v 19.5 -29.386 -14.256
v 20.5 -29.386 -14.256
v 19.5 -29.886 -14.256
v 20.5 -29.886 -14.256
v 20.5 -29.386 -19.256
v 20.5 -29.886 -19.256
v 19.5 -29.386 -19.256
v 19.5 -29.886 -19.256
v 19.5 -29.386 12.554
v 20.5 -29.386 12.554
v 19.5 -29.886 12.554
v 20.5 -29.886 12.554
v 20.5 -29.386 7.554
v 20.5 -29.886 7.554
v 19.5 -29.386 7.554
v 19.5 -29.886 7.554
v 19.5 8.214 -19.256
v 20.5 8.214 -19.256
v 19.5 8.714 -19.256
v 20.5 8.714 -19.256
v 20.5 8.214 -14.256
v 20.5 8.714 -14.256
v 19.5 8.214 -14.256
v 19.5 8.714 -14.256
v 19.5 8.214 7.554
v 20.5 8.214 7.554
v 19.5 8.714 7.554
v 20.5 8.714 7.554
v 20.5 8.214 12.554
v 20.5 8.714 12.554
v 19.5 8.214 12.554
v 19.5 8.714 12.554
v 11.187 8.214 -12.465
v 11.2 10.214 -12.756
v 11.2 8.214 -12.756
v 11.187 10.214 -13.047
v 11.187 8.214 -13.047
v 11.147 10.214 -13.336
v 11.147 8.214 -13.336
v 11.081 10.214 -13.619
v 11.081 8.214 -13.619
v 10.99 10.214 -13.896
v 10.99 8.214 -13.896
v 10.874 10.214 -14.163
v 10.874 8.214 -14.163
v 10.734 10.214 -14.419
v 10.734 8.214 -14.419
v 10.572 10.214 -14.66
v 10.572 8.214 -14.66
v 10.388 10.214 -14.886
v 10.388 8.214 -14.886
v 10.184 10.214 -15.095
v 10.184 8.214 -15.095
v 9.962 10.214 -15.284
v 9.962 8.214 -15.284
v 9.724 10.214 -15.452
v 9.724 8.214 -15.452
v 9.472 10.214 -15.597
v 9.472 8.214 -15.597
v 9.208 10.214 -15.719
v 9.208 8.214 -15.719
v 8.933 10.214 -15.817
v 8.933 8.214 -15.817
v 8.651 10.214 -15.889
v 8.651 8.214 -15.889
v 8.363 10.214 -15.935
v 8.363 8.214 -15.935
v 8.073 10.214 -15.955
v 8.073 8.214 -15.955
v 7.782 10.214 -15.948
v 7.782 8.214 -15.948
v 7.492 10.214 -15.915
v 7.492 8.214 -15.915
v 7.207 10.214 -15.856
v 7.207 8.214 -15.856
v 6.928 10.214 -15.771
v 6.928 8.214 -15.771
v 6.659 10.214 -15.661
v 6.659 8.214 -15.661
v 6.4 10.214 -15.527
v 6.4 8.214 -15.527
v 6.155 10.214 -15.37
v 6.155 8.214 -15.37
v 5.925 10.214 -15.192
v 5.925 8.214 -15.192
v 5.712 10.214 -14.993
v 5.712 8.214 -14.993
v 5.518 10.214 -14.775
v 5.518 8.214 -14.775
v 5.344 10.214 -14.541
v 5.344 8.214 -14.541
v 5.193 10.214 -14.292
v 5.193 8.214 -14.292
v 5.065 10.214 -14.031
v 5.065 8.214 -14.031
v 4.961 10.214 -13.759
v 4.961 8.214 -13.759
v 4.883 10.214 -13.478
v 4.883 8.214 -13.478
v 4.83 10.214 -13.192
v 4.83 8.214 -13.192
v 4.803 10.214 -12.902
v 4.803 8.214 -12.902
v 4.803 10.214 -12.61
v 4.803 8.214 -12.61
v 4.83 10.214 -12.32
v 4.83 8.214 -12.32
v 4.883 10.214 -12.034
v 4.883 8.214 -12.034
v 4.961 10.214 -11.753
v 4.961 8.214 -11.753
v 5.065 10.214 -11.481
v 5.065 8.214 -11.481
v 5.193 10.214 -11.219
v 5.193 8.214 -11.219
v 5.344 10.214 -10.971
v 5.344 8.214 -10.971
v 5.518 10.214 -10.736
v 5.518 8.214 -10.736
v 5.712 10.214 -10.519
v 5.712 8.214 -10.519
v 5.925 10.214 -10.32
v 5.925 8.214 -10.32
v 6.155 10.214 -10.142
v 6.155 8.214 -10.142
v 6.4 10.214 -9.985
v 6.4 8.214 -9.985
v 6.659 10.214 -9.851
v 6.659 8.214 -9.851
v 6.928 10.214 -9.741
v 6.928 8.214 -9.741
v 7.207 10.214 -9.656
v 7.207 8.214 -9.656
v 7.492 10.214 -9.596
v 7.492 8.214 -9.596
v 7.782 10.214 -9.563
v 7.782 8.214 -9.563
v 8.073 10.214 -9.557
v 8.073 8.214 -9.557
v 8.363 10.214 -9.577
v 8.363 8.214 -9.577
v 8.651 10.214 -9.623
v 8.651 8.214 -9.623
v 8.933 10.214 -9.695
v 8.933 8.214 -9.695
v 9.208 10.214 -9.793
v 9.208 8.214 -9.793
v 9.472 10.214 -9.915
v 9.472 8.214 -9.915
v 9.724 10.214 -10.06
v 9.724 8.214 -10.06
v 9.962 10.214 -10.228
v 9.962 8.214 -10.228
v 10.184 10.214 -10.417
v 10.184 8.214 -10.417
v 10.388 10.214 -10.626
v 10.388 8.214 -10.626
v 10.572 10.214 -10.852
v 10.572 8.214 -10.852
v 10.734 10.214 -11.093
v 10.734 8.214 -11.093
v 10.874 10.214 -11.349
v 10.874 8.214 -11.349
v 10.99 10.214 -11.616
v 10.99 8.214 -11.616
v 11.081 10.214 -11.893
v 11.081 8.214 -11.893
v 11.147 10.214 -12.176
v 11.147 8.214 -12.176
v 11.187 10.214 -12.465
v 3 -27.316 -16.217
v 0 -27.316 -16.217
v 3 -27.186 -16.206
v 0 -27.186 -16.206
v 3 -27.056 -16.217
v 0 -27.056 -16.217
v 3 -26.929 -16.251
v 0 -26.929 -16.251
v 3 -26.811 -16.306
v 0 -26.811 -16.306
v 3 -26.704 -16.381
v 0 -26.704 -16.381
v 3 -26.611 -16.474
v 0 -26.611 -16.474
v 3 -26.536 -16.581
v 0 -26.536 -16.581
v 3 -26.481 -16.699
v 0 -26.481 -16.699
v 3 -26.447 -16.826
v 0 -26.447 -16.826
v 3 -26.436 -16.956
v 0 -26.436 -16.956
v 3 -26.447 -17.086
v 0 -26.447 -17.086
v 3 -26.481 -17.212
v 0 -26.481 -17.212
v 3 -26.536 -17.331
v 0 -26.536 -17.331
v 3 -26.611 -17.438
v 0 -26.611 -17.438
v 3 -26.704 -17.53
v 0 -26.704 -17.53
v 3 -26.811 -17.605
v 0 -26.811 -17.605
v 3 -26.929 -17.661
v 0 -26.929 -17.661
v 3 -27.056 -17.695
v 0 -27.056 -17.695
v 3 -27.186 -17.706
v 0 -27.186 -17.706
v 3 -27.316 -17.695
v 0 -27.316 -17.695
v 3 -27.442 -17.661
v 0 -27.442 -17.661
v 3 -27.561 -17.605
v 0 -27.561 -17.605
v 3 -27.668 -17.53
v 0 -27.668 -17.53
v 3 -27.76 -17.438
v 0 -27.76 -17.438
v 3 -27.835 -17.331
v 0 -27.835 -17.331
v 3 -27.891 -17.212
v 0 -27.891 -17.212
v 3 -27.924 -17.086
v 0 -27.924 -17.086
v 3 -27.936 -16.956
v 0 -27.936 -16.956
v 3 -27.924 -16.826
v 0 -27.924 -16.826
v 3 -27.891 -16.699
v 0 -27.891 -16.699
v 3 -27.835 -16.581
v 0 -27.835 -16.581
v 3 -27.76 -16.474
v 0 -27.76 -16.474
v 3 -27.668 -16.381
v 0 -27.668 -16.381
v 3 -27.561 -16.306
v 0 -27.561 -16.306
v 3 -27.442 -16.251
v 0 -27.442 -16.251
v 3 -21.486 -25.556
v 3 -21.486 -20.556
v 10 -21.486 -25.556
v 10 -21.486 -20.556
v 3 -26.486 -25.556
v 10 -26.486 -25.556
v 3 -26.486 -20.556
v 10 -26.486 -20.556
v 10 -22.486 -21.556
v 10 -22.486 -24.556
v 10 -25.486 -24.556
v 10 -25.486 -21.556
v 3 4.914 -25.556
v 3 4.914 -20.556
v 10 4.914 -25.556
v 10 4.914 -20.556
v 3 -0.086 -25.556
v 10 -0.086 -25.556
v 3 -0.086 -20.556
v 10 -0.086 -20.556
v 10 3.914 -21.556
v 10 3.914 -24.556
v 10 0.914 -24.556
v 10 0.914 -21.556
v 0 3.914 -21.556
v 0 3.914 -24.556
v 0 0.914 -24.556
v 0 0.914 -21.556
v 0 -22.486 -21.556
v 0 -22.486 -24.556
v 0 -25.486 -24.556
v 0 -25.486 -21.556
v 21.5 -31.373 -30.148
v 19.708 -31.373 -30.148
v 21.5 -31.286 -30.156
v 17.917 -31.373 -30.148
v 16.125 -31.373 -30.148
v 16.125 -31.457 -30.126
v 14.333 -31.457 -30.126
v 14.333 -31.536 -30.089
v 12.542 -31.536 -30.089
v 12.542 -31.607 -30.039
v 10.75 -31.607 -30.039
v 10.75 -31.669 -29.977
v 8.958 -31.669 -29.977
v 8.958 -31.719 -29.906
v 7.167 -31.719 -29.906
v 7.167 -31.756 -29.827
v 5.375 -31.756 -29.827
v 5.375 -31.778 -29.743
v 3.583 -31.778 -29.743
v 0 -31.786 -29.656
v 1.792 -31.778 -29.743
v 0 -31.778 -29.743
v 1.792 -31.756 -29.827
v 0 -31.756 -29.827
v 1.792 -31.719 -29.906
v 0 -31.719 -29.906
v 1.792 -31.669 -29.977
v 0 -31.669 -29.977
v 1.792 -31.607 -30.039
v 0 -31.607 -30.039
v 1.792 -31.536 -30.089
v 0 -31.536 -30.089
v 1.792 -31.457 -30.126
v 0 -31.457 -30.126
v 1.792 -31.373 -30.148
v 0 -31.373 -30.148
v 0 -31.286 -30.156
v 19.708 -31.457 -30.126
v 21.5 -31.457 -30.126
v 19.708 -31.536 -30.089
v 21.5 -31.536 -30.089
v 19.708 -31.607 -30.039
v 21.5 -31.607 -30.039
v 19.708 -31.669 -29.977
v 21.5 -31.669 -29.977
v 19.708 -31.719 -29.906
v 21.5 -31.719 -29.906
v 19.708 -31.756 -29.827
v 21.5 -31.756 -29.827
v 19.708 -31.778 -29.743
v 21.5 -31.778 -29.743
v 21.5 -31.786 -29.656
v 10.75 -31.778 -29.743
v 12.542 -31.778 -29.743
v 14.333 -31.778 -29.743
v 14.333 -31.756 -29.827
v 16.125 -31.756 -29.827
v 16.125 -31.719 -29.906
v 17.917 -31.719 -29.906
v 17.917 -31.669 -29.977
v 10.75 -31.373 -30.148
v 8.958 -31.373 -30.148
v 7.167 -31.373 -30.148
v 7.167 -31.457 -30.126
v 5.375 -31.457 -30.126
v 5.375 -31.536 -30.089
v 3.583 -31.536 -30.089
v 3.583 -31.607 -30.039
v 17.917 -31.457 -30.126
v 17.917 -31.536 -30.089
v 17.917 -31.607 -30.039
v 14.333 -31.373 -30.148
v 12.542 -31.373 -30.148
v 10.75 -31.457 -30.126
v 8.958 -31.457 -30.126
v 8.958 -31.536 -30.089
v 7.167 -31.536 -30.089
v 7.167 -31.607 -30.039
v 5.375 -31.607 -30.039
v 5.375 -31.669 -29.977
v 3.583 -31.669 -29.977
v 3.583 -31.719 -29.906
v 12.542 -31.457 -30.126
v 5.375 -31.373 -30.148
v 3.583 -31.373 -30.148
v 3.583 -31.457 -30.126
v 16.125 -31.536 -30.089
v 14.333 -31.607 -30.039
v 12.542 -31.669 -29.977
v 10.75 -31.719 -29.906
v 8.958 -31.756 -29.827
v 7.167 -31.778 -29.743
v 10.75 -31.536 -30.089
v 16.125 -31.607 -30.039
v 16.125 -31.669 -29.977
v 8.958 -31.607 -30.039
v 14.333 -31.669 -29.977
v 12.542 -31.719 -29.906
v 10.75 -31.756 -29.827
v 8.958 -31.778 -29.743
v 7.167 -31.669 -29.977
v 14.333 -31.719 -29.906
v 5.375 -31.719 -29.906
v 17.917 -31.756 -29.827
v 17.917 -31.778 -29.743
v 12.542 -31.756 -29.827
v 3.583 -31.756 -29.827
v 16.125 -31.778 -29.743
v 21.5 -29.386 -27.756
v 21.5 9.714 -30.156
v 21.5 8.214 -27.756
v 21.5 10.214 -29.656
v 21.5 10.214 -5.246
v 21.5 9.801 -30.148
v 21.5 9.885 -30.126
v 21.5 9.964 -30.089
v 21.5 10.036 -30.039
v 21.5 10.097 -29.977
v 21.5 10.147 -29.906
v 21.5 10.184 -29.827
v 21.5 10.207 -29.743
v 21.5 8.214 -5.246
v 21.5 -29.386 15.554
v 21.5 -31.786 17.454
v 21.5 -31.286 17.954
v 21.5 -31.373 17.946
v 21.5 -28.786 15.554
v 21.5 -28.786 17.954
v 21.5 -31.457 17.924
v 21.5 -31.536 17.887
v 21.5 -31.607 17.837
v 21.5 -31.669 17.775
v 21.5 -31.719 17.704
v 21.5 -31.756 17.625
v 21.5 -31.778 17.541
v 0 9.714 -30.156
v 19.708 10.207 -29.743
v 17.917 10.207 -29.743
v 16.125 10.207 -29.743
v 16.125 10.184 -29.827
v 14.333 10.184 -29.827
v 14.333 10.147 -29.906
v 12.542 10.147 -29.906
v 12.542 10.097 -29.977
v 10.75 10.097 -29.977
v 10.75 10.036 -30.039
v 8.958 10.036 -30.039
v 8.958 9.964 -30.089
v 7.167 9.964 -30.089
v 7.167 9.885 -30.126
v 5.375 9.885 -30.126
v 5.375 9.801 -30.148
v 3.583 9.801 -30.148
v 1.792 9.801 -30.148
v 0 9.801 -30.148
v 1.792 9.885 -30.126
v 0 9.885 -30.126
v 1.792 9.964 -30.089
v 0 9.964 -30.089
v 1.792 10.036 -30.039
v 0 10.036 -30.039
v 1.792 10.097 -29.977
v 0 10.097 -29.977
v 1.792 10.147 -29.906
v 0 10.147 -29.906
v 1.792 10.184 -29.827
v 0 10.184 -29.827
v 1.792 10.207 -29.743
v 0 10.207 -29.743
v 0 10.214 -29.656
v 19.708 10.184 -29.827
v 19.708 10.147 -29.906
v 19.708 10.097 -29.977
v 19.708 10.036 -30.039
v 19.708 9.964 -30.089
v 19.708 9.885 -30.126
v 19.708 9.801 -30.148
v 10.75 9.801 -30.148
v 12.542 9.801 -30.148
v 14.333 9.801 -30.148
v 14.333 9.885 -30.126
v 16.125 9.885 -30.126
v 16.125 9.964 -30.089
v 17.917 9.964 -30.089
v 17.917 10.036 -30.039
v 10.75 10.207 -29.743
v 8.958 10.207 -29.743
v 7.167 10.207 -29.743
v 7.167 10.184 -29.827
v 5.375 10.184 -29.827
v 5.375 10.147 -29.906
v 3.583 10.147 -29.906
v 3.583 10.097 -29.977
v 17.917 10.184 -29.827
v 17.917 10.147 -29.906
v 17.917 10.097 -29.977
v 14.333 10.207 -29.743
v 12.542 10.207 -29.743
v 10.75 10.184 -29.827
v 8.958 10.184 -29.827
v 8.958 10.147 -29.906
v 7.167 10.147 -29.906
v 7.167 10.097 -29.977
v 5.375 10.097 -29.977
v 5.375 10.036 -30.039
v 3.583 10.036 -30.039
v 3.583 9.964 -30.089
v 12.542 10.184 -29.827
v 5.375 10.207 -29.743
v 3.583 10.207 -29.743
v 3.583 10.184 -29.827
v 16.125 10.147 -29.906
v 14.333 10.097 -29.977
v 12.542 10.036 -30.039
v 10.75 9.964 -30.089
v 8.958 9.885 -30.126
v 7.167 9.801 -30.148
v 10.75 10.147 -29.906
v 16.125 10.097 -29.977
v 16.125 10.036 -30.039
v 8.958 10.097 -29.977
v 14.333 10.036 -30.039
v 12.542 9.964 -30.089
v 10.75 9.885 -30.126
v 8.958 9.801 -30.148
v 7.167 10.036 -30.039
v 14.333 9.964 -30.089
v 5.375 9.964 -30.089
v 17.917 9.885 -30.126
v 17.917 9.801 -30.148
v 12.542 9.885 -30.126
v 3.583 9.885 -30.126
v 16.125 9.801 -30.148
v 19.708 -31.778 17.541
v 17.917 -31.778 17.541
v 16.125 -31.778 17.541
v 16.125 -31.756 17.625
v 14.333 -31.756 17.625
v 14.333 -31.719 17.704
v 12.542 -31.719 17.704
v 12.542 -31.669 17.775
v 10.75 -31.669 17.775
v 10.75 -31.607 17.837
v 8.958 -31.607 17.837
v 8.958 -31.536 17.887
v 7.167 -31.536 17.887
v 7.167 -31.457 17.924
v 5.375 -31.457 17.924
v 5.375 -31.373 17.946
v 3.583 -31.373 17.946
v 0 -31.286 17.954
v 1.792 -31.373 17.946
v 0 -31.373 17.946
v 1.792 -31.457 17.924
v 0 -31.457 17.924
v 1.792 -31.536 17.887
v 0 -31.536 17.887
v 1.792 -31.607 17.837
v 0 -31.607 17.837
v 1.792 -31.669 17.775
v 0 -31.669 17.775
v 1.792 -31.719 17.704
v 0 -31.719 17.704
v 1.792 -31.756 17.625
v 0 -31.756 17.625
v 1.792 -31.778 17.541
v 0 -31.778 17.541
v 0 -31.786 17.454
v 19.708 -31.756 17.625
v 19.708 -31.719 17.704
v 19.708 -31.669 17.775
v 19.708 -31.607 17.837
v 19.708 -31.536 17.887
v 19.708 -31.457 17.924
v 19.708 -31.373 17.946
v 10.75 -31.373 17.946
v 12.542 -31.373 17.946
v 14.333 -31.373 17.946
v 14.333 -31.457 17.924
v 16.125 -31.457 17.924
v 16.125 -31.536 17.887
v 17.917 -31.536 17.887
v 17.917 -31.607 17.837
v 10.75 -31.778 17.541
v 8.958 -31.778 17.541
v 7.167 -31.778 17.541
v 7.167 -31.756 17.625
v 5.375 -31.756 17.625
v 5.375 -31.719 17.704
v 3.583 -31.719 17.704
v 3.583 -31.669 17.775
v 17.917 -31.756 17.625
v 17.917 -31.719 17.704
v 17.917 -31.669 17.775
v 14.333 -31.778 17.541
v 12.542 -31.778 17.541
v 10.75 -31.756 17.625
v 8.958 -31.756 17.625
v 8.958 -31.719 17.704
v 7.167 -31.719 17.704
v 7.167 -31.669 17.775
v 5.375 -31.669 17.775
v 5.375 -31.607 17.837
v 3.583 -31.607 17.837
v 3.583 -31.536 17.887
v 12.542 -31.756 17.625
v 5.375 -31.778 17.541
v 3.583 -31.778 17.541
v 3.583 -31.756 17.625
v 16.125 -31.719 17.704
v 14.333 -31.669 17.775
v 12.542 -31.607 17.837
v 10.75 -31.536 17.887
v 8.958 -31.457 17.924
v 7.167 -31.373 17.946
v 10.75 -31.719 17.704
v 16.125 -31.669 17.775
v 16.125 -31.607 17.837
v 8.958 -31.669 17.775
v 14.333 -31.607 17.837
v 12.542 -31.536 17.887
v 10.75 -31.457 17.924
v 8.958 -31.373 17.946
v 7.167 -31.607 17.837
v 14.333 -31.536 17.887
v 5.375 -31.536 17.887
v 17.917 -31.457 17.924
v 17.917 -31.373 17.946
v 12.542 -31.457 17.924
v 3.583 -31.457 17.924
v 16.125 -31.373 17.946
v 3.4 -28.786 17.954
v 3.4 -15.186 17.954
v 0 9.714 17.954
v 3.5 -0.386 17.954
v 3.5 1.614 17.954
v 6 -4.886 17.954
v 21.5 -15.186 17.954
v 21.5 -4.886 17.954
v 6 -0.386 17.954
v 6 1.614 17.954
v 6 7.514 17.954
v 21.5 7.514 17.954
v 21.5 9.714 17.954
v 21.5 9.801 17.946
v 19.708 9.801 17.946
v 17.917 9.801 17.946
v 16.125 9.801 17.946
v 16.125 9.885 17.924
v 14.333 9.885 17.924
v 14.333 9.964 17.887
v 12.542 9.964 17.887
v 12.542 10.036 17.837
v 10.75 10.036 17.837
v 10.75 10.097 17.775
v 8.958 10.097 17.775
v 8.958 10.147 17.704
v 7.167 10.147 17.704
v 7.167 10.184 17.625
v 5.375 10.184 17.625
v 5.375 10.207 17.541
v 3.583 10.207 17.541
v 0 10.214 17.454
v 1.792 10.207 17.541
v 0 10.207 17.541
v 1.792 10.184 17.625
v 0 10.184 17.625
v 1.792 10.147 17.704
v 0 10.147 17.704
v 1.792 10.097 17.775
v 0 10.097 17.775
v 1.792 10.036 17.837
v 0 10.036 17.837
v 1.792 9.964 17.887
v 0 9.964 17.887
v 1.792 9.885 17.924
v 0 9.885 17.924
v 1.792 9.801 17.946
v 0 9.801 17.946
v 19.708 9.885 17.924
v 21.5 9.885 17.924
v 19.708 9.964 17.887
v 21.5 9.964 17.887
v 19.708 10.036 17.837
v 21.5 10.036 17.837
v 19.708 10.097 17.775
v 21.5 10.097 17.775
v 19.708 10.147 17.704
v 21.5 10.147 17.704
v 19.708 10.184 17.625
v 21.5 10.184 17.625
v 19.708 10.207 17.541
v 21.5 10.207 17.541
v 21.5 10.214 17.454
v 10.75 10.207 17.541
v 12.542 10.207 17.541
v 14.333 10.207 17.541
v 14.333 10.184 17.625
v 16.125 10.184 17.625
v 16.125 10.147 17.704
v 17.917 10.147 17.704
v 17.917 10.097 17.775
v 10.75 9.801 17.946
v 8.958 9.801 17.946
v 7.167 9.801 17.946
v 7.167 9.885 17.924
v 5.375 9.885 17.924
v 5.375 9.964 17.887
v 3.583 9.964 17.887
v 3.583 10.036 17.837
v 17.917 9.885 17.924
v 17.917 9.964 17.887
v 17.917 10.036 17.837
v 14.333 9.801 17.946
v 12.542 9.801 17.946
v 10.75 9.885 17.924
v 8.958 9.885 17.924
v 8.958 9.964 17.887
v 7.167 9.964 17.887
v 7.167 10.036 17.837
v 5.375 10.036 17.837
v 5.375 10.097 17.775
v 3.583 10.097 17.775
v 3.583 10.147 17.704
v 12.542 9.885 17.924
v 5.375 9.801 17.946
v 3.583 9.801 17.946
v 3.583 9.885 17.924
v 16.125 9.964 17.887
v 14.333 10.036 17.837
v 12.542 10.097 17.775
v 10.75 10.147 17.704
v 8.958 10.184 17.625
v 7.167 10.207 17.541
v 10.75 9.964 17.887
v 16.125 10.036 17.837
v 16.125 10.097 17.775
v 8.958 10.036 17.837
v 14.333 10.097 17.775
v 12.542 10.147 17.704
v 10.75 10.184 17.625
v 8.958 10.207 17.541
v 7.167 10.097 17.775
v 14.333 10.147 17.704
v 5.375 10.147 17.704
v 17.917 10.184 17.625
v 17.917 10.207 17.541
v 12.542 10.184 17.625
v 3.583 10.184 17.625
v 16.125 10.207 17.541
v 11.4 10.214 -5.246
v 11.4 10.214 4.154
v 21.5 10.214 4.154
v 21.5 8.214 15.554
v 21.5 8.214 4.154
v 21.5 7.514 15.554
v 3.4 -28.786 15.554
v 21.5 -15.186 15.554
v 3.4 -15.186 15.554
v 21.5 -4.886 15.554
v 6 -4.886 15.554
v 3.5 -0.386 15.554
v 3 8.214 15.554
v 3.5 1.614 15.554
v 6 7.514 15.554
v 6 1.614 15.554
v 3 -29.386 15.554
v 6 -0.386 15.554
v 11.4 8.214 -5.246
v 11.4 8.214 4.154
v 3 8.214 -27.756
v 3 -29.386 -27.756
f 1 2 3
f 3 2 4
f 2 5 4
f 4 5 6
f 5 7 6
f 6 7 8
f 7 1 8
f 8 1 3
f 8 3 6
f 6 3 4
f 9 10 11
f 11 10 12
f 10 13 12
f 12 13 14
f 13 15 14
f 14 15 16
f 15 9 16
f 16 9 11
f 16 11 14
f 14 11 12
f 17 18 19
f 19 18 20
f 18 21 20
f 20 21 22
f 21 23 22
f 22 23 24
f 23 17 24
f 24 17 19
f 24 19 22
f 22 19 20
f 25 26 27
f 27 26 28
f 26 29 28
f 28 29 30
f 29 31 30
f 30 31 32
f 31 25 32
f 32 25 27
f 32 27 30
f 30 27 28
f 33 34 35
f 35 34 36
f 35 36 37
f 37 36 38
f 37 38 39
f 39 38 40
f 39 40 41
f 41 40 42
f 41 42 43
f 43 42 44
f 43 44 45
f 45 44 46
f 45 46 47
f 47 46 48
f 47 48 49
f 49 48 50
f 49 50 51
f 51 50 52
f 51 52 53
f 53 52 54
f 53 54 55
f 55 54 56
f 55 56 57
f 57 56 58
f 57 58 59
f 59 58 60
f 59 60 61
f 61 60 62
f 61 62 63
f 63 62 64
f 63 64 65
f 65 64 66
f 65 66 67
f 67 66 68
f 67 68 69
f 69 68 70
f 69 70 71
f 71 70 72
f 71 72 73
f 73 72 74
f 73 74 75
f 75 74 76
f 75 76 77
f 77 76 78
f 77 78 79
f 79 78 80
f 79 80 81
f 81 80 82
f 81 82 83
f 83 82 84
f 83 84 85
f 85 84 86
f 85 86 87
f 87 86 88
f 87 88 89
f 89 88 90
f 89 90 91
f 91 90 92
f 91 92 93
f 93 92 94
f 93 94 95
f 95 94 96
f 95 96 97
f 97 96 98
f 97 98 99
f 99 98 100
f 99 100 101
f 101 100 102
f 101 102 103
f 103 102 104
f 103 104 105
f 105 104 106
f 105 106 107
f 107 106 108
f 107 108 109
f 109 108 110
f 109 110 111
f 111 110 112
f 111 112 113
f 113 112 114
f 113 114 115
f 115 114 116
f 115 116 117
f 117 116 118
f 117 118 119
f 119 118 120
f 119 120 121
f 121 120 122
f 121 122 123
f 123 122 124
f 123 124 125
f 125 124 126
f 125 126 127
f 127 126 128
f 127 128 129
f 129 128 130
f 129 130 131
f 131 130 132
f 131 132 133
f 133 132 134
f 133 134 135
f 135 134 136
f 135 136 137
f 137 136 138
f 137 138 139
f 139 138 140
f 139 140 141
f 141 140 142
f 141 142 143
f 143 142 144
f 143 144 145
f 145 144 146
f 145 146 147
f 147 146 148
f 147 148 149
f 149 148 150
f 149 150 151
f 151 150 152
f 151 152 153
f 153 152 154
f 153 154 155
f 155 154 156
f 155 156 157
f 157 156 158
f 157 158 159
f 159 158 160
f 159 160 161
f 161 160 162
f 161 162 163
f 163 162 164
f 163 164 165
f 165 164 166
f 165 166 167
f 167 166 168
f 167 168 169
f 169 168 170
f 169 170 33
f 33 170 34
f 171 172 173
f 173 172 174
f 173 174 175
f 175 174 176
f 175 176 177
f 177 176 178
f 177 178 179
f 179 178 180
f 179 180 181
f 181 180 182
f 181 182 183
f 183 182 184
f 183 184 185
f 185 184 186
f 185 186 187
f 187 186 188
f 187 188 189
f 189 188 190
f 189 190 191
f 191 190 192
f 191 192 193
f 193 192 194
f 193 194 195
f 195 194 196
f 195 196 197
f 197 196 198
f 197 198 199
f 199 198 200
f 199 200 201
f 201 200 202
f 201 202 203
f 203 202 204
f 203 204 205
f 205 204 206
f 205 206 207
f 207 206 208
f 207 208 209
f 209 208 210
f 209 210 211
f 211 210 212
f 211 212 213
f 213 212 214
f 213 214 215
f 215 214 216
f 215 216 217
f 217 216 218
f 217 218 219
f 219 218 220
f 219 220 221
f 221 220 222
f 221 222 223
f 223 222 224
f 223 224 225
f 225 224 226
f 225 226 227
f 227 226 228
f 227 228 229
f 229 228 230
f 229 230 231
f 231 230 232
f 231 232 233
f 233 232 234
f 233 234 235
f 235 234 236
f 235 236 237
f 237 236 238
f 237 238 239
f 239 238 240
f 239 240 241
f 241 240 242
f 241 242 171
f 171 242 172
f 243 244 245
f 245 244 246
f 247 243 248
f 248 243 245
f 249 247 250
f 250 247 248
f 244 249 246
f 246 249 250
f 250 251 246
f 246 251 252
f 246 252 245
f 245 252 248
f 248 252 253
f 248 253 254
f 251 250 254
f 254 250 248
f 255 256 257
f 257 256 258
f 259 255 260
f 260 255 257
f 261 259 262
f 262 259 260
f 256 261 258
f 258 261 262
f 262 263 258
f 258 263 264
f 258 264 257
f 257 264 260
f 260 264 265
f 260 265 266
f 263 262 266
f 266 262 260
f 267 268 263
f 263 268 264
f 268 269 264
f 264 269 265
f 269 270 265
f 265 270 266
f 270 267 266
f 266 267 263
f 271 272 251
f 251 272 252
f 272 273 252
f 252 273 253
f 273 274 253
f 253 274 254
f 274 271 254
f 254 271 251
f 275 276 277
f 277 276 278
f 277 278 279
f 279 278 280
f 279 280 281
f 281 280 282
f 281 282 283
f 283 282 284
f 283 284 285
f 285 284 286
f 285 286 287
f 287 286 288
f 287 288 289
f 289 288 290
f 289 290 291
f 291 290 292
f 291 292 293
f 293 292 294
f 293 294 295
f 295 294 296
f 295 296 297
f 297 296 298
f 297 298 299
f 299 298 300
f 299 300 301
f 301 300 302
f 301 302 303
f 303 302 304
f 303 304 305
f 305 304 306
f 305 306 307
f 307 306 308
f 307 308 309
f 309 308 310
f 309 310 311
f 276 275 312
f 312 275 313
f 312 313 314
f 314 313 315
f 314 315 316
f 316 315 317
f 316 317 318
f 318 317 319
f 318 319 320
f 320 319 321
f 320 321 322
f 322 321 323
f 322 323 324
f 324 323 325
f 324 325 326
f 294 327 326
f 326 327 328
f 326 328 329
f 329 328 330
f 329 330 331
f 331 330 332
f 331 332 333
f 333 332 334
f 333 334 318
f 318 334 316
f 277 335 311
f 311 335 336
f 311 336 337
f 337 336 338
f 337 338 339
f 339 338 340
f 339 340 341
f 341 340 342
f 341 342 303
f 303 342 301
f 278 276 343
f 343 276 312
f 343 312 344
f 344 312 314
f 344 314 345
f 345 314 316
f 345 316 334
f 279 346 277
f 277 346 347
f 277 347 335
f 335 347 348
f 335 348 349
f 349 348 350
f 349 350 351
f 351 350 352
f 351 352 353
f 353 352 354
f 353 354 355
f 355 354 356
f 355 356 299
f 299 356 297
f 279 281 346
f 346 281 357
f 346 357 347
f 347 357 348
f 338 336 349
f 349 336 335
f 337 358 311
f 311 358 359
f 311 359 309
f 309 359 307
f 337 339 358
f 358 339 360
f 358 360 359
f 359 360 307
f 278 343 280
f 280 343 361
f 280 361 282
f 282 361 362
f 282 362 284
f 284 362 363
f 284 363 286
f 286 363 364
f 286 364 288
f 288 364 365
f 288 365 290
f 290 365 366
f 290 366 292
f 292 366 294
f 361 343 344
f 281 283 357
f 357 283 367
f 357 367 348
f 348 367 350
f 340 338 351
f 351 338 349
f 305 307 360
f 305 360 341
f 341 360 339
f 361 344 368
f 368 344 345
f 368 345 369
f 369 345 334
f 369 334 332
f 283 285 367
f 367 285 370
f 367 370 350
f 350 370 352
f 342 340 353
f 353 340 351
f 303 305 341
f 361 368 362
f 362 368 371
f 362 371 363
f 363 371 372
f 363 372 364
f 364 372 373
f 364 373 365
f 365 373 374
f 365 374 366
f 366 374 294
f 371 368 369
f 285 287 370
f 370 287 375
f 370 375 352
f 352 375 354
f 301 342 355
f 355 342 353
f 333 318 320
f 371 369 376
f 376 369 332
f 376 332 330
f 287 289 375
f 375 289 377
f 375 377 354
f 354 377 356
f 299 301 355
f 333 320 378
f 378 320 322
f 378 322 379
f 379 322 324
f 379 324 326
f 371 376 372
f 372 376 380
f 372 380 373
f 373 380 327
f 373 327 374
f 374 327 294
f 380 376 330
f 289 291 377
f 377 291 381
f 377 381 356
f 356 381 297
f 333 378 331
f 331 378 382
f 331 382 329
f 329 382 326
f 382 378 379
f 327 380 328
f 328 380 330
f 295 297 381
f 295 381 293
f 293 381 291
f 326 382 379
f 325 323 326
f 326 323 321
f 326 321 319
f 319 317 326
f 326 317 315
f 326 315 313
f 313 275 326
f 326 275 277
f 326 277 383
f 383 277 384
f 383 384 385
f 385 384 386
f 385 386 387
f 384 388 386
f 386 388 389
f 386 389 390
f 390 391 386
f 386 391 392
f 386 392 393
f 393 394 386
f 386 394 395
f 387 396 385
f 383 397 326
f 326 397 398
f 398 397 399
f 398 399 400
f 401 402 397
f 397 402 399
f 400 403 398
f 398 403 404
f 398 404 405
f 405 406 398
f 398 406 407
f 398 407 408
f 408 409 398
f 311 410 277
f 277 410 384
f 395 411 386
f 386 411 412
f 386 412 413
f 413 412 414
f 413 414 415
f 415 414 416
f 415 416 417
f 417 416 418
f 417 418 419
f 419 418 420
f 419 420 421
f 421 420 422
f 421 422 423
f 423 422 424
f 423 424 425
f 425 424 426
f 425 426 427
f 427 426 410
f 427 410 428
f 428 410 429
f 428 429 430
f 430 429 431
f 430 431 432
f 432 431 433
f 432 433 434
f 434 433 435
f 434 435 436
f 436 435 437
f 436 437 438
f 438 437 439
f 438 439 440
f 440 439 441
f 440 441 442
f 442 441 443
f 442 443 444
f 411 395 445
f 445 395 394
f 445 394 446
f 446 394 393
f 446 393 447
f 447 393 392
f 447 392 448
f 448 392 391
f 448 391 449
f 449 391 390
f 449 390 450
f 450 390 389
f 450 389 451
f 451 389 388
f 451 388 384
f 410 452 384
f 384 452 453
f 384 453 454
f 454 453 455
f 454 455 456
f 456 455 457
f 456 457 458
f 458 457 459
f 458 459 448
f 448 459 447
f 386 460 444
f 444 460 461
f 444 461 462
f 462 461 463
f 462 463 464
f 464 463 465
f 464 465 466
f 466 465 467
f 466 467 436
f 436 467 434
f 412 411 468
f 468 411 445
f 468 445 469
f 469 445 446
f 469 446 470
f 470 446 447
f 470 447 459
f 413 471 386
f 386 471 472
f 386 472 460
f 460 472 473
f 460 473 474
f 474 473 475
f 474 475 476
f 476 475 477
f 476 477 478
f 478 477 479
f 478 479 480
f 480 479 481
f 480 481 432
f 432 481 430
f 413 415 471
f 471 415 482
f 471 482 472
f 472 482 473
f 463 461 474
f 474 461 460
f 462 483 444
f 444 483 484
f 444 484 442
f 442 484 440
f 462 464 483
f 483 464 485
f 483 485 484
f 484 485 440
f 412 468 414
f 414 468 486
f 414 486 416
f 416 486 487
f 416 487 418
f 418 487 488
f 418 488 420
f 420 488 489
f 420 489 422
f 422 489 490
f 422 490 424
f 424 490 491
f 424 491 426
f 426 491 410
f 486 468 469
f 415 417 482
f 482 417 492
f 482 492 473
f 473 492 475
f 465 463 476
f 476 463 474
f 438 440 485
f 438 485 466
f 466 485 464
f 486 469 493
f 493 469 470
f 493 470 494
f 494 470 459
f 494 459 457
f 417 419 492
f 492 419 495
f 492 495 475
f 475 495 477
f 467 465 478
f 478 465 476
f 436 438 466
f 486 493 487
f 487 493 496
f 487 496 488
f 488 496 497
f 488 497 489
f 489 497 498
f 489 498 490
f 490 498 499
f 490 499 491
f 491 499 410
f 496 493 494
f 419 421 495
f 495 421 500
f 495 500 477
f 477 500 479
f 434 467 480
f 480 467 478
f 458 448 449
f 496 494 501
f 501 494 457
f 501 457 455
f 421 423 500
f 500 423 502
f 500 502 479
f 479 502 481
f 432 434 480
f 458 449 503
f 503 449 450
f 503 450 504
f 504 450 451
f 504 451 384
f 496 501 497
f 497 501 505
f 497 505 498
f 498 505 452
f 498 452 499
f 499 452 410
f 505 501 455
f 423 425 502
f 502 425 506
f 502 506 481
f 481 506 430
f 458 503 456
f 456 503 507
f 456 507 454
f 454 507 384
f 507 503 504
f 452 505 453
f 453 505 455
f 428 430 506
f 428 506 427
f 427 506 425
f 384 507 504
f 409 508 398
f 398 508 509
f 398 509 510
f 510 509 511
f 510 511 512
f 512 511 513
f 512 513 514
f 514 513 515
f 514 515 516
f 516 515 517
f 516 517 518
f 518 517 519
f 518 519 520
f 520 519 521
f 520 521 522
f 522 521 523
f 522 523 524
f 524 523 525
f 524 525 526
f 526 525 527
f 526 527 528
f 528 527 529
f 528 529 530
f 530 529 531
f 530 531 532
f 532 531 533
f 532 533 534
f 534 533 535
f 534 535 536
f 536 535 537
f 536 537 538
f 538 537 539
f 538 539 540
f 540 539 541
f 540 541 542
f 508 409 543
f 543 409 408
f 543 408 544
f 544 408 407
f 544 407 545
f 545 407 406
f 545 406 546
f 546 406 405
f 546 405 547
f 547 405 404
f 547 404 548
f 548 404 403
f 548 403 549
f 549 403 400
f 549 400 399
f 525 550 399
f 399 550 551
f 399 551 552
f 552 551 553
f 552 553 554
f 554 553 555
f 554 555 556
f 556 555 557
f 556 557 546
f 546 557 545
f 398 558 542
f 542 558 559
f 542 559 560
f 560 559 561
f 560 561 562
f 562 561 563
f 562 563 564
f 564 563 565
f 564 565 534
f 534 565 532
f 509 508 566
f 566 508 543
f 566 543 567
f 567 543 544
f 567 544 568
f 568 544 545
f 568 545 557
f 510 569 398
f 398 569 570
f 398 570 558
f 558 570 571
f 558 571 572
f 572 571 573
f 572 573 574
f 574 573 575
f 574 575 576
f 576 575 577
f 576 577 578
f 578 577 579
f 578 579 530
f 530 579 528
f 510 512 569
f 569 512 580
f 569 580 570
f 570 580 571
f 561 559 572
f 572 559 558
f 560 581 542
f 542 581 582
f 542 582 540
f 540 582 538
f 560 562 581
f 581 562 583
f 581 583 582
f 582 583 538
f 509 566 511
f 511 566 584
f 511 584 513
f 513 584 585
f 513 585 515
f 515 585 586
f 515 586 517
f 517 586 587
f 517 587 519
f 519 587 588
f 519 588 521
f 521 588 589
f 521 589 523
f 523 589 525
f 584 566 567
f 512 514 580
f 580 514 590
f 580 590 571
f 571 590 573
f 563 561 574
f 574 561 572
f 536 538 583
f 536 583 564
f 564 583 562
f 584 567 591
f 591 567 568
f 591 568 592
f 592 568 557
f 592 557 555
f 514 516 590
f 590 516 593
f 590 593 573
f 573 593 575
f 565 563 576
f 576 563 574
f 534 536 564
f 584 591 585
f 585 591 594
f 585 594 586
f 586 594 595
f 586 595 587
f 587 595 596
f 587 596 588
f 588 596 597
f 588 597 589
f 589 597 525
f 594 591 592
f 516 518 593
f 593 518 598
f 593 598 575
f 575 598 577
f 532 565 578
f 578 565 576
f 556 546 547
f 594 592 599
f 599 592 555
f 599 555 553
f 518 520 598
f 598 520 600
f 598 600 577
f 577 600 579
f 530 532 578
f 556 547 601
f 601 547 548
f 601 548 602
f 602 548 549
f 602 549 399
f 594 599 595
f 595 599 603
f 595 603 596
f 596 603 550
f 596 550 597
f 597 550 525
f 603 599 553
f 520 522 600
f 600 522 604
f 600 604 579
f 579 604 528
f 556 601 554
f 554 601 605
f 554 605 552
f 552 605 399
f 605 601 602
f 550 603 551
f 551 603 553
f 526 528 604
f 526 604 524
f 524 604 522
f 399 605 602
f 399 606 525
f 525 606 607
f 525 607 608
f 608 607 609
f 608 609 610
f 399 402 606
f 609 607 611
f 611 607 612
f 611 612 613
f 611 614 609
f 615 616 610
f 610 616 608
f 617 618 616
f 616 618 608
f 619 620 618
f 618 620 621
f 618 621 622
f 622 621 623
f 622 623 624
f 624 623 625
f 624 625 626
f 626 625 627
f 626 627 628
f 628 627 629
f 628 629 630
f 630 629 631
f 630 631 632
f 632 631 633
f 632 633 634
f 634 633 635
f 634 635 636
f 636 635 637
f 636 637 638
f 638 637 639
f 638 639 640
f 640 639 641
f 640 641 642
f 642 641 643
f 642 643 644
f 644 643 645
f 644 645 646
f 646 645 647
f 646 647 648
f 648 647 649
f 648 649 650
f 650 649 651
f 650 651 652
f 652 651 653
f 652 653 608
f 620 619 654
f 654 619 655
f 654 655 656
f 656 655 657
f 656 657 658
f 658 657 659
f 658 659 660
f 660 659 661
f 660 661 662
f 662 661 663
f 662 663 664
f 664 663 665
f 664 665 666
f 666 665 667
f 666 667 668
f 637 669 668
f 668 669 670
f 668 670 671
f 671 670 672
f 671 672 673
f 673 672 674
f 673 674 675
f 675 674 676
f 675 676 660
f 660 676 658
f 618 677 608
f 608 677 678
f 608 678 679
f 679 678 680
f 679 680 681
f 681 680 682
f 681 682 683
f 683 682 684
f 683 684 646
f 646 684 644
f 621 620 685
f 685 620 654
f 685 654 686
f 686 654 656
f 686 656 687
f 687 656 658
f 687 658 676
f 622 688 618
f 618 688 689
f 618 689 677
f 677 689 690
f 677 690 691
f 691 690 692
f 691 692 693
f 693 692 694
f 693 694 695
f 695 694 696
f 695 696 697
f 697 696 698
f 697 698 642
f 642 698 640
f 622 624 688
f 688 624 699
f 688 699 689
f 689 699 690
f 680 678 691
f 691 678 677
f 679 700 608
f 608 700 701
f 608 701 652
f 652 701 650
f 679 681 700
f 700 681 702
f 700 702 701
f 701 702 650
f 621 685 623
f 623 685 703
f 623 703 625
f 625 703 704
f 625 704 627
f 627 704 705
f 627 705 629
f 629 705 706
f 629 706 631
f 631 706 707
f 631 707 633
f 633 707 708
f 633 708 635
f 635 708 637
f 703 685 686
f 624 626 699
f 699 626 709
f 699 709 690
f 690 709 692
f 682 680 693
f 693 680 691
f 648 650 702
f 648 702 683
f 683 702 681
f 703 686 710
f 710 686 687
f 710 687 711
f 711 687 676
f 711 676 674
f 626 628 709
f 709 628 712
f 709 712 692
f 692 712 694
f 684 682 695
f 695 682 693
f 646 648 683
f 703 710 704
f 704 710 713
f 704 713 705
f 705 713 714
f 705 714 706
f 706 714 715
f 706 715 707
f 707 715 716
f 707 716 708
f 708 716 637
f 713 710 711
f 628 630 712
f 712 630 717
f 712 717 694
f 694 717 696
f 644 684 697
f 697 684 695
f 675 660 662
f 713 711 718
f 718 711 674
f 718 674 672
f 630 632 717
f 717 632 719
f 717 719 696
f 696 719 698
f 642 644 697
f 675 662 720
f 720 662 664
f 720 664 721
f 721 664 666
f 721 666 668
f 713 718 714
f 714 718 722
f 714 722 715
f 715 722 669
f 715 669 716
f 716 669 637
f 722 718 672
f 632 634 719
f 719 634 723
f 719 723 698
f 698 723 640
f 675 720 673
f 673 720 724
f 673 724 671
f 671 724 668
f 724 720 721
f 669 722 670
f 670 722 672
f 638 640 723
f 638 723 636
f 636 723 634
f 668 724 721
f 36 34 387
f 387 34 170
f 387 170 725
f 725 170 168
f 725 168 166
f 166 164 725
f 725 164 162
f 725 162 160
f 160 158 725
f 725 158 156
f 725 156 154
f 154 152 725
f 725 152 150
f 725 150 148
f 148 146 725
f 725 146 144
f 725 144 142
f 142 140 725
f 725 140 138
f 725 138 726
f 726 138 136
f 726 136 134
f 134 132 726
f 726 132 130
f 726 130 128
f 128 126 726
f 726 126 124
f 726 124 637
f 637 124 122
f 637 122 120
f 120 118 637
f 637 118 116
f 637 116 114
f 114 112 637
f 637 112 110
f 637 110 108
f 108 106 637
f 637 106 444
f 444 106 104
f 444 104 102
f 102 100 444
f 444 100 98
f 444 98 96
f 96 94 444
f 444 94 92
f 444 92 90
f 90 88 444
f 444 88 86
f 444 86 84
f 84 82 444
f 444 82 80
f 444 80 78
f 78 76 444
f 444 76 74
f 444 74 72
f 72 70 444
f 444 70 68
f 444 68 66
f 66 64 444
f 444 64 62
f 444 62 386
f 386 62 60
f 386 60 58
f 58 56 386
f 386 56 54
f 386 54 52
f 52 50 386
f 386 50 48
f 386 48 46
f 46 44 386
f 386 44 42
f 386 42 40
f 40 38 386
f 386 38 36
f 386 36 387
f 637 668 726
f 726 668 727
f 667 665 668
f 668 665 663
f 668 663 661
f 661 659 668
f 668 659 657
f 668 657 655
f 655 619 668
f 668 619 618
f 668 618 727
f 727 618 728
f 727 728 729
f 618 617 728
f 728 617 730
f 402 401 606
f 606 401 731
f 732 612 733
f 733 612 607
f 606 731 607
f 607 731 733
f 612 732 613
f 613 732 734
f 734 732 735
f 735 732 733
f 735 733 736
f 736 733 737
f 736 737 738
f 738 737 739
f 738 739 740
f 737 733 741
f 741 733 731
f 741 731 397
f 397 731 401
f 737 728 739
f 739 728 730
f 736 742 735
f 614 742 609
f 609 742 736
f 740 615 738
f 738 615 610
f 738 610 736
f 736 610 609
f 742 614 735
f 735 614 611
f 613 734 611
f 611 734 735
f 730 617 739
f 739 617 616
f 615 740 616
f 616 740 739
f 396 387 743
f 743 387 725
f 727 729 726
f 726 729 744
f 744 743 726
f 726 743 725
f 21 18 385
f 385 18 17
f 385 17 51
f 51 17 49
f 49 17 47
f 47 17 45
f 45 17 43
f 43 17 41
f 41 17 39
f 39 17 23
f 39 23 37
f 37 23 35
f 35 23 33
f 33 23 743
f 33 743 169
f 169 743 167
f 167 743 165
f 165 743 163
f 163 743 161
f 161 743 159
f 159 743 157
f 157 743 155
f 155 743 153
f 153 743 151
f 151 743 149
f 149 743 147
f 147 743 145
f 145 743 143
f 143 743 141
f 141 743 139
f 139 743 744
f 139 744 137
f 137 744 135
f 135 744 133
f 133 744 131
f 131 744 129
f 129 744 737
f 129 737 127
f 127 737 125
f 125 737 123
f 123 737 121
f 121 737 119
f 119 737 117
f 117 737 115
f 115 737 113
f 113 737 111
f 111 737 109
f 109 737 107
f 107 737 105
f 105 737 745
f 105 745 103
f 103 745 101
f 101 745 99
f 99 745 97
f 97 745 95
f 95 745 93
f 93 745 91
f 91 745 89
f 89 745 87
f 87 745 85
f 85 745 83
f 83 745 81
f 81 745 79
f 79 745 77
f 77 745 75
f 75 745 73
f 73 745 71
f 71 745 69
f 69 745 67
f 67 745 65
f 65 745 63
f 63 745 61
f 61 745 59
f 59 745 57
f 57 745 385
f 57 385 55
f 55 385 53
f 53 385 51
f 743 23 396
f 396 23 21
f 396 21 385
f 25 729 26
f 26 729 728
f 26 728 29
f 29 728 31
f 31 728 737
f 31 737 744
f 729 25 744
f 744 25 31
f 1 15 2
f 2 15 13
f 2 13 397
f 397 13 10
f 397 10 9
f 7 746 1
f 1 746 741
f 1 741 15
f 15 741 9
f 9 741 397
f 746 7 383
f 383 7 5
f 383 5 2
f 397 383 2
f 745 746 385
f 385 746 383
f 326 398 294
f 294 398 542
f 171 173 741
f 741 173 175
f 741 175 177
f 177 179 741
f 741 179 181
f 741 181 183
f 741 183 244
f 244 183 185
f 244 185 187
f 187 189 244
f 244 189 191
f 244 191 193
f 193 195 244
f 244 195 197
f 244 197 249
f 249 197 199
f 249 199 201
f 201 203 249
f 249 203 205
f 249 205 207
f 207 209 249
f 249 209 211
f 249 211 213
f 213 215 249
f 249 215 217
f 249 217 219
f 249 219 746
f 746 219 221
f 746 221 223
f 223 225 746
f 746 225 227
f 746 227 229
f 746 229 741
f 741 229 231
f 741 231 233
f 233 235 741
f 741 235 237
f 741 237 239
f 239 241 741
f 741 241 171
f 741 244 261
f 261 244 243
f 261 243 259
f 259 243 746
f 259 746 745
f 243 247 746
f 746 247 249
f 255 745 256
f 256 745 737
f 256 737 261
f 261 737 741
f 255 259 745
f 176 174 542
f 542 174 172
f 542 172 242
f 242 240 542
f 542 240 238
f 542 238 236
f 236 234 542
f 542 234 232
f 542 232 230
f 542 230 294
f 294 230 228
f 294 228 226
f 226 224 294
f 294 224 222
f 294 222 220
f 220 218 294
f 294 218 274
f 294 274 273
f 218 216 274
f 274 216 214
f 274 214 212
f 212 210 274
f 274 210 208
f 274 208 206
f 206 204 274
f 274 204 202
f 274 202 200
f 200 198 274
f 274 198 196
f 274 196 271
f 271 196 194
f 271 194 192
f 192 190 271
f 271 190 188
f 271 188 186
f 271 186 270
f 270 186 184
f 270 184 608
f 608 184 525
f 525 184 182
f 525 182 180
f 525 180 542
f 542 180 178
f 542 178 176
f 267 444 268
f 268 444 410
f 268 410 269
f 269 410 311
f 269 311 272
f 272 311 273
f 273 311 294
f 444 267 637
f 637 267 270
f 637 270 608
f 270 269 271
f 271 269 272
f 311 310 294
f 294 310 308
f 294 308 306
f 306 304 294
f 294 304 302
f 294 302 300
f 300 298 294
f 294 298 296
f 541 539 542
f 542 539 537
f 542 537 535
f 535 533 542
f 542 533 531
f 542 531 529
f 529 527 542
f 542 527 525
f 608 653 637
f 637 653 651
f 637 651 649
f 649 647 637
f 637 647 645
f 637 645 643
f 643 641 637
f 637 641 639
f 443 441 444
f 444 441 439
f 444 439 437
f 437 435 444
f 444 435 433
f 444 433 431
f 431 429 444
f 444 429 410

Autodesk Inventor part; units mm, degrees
ref_plane "YZ Plane" through (0, 0, 0) normal (1, 0, 0) x (0, 1, 0)
ref_plane "XZ Plane" through (0, 0, 0) normal (0, 1, 0) x (-1, 0, 0)
ref_plane "XY Plane" through (0, 0, 0) normal (0, 0, 1) x (1, 0, 0)
sketch "Sketch1" plane through (0, 0, 0) normal (1, 0, 0) x (0, 1, 0)
  line L0 (10.2141, 17.9541) -> (-31.7859, 17.9541)
  line L1 (-31.7859, 17.9541) -> (-31.7859, -30.1559)
  line L2 (-31.7859, -30.1559) -> (10.2141, -30.1559)
  line L3 (10.2141, -30.1559) -> (10.2141, 17.9541)
  point P0 (0, 0)
  dimension "d0" = 42
  dimension "d1" = 48.11
extrude "BasePlate" add sketch "Sketch1" along normal blind 3
sketch "Sketch2" plane through (3, 0, 0) normal (1, 0, 0) x (0, 0, -1)
  point P0 (0, 0)
sketch "Sketch3" plane through (3, 0, 0) normal (1, 0, 0) x (0, 0, -1)
  line L0 (30.1559, 10.2141) -> (-17.9541, 10.2141) projected
  line L1 (-17.9541, -31.7859) -> (30.1559, -31.7859) projected
  line L2 (-17.9541, 10.2141) -> (30.1559, 10.2141)
  line L3 (30.1559, 10.2141) -> (30.1559, -31.7859)
  line L4 (30.1559, -31.7859) -> (-17.9541, -31.7859)
  line L5 (-17.9541, -31.7859) -> (-17.9541, 10.2141)
  line L6 (-15.5541, 8.2141) -> (27.7559, 8.2141)
  line L7 (27.7559, 8.2141) -> (27.7559, -29.3859)
  line L8 (27.7559, -29.3859) -> (-15.5541, -29.3859)
  line L9 (-15.5541, -29.3859) -> (-15.5541, 8.2141)
  point P0 (0, 0)
  point P1 (-17.9541, -10.7859)
  dimension "d4" = 2
  dimension "d5" = 2.4
  dimension "d6" = 2.4
  dimension "d7" = 2.4
extrude "Walls" add sketch "Sketch3" along normal blind 18.5
sketch "Sketch4" plane through (21.5, 0, 0) normal (1, 0, 0) x (0, 0, -1)
  line L0 (30.1559, 10.2141) -> (-17.9541, 10.2141) projected
  line L1 (-15.5541, 8.2141) -> (27.7559, 8.2141) projected
  line L2 (-4.1541, 10.2141) -> (5.2459, 10.2141)
  line L3 (5.2459, 10.2141) -> (5.2459, 8.2141)
  line L4 (5.2459, 8.2141) -> (-4.1541, 8.2141)
  line L5 (-4.1541, 8.2141) -> (-4.1541, 10.2141)
  line L6 (-17.9541, 10.2141) -> (-17.9541, -31.7859) projected
  point P0 (0, 0)
  point P1 (-4.1541, 9.2141)
  point P2 (5.2459, 10.2141)
  dimension "d10" = 9.4
  dimension "d11" = 13.8
extrude "USB-C" cut sketch "Sketch4" against normal blind 10.1
sketch "Sketch5" plane through (21.5, 0, 0) normal (1, 0, 0) x (0, 0, -1)
  line L0 (-17.9541, 10.2141) -> (-17.9541, -31.7859) projected
  line L1 (-15.5541, -29.3859) -> (-15.5541, 8.2141) projected
  line L2 (-17.9541, -4.8859) -> (-15.5541, -4.8859)
  line L3 (-15.5541, -4.8859) -> (-15.5541, 7.5141)
  line L4 (-15.5541, 7.5141) -> (-17.9541, 7.5141)
  line L5 (-17.9541, 7.5141) -> (-17.9541, -4.8859)
  line L6 (-4.1541, 10.2141) -> (-17.9541, 10.2141) projected
  point P0 (0, 0)
  point P1 (-16.7541, 7.5141)
  point P2 (-17.9541, 7.5141)
  point P3 (-15.5541, -4.8859)
  dimension "d14" = 12.4
  dimension "d15" = 2.7
extrude "PowerConnector1" cut sketch "Sketch5" against normal blind 15.5
sketch "Sketch6" plane through (6, 0, 0) normal (1, 0, 0) x (0, 0, -1)
  line L0 (-17.9541, 10.2141) -> (-17.9541, -31.7859) projected
  line L1 (-17.9541, -0.3859) -> (-15.5541, -0.3859)
  line L2 (-15.5541, -0.3859) -> (-15.5541, 1.6141)
  line L3 (-15.5541, 1.6141) -> (-17.9541, 1.6141)
  line L4 (-17.9541, 1.6141) -> (-17.9541, -0.3859)
  line L5 (-17.9541, 7.5141) -> (-15.5541, 7.5141) projected
  point P0 (0, 0)
  dimension "d18" = 2.4
  dimension "d19" = 2
  dimension "d20" = 5.9
extrude "PowerConnector2" cut sketch "Sketch6" against normal blind 2.5
sketch "Sketch8" plane through (21.5, 0, 0) normal (1, 0, 0) x (0, 0, -1)
  line L0 (-17.9541, 10.2141) -> (-17.9541, -31.7859) projected
  line L1 (-15.5541, 8.2141) -> (-15.5541, -29.3859) projected
  line L2 (-17.9541, -28.7859) -> (-15.5541, -28.7859)
  line L3 (-15.5541, -28.7859) -> (-15.5541, -15.1859)
  line L4 (-15.5541, -15.1859) -> (-17.9541, -15.1859)
  line L5 (-17.9541, -15.1859) -> (-17.9541, -28.7859)
  line L6 (-17.9541, -31.7859) -> (30.1559, -31.7859) projected
  point P0 (0, 0)
  dimension "d23" = 13.6
  dimension "d24" = 3
extrude "RJ-12" cut sketch "Sketch8" against normal blind 18.1
fillet "Fillet1" radius 0.5 4 edges at (10.75, 10.2141, 17.9541) (10.75, -31.7859, 17.9541) (10.75, 10.2141, -30.1559) (10.75, -31.7859, -30.1559)
sketch "Sketch9" plane through (0, 0, 0) normal (-1, 0, 0) x (0, 0, 1)
  line L0 (-24.5559, -25.4859) -> (-21.5559, -25.4859)
  line L1 (-21.5559, -25.4859) -> (-21.5559, -22.4859)
  line L2 (-21.5559, -22.4859) -> (-24.5559, -22.4859)
  line L3 (-24.5559, -22.4859) -> (-24.5559, -25.4859)
  line L4 (-30.1559, -31.2859) -> (-30.1559, 9.7141) projected
  line L5 (17.4541, -31.7859) -> (-29.6559, -31.7859) projected
  point P0 (0, 0)
  point P1 (-24.5559, -23.9859)
  dimension "d28" = 3
  dimension "d29" = 3
  dimension "d30" = 5.6
  dimension "d31" = 6.3
extrude "ZBButton" cut sketch "Sketch9" against normal blind 3
sketch "Sketch10" plane through (0, 0, 0) normal (-1, 0, 0) x (0, 0, 1)
  line L0 (-24.5559, 0.9141) -> (-21.5559, 0.9141)
  line L1 (-21.5559, 0.9141) -> (-21.5559, 3.9141)
  line L2 (-21.5559, 3.9141) -> (-24.5559, 3.9141)
  line L3 (-24.5559, 3.9141) -> (-24.5559, 0.9141)
  line L4 (-30.1559, -31.2859) -> (-30.1559, 9.7141) projected
  line L5 (-29.6559, 10.2141) -> (17.4541, 10.2141) projected
  point P0 (0, 0)
  point P1 (-24.5559, 2.4141)
  dimension "d34" = 3
  dimension "d35" = 3
  dimension "d36" = 5.6
  dimension "d37" = 6.3
extrude "ResetButton" cut sketch "Sketch10" against normal blind 3
sketch "Sketch11" plane through (3, 0, 0) normal (1, 0, 0) x (0, 0, -1)
  line L0 (25.5559, 4.9141) -> (20.5559, 4.9141)
  line L1 (20.5559, 4.9141) -> (20.5559, -0.0859)
  line L2 (20.5559, -0.0859) -> (25.5559, -0.0859)
  line L3 (25.5559, -0.0859) -> (25.5559, 4.9141)
  line L4 (21.5559, 3.9141) -> (24.5559, 3.9141) projected
  line L5 (24.5559, 3.9141) -> (24.5559, 0.9141) projected
  line L6 (25.5559, -21.4859) -> (20.5559, -21.4859)
  line L7 (20.5559, -21.4859) -> (20.5559, -26.4859)
  line L8 (20.5559, -26.4859) -> (25.5559, -26.4859)
  line L9 (25.5559, -26.4859) -> (25.5559, -21.4859)
  line L10 (24.5559, -22.4859) -> (24.5559, -25.4859) projected
  line L11 (21.5559, -22.4859) -> (24.5559, -22.4859) projected
  line L12 (24.5559, 0.9141) -> (21.5559, 0.9141) projected
  line L13 (24.5559, 3.9141) -> (21.5559, 3.9141)
  line L14 (21.5559, 3.9141) -> (21.5559, 0.9141)
  line L15 (21.5559, 0.9141) -> (24.5559, 0.9141)
  line L16 (24.5559, 0.9141) -> (24.5559, 3.9141)
  line L17 (21.5559, -25.4859) -> (21.5559, -22.4859) projected
  line L18 (24.5559, -22.4859) -> (21.5559, -22.4859)
  line L19 (21.5559, -22.4859) -> (21.5559, -25.4859)
  line L20 (21.5559, -25.4859) -> (24.5559, -25.4859)
  line L21 (24.5559, -25.4859) -> (24.5559, -22.4859)
  point P0 (0, 0)
  point P1 (23.0559, -22.4859)
  dimension "d40" = 5
  dimension "d41" = 5
  dimension "d42" = 1
  dimension "d43" = 1
  dimension "d44" = 5
  dimension "d45" = 5
  dimension "d46" = 1
  dimension "d47" = 1
extrude "ButtonFuehrung" add sketch "Sketch11" along normal blind 7
sketch "Sketch12" plane through (0, 0, 0) normal (-1, 0, 0) x (0, 0, 1)
  circle A0 centre (-16.9559, -27.1859) radius 0.75
  line L0 (17.4541, -31.7859) -> (-29.6559, -31.7859) projected
  line L1 (-30.1559, -31.2859) -> (-30.1559, 9.7141) projected
  point P0 (0, 0)
  dimension "d50" = 1.5
  dimension "d51" = 4.6
  dimension "d52" = 13.2
extrude "LED" cut sketch "Sketch12" against normal blind 3
sketch "Sketch13" plane through (11.4, 10.2141, 4.1541) normal (0, 1, 0) x (1, 0, 0)
  circle A0 centre (-3.4, 16.91) radius 3.2
  line L0 (-11.4, 33.81) -> (-11.4, -13.3) projected
  line L1 (10.1, 34.31) -> (-11.4, 34.31) projected
  point P0 (-11.4, 4.1541)
  dimension "d55" = 6.4
  dimension "d56" = 8
  dimension "d57" = 17.4
extrude "Antenna" cut sketch "Sketch13" against normal blind 2
sketch "Sketch14" plane through (3, 8.2141, -27.7559) normal (0, -1, 0) x (1, 0, 0)
  line L0 (17.5, 40.31) -> (16.5, 40.31)
  line L1 (16.5, 40.31) -> (16.5, 35.31)
  line L2 (16.5, 35.31) -> (17.5, 35.31)
  line L3 (17.5, 35.31) -> (17.5, 40.31)
  line L4 (18.5, 43.31) -> (18.5, 31.91) projected
  point P0 (-3, 27.7559)
  point P1 (17.5, 37.81)
  dimension "d60" = 1
  dimension "d61" = 5
  dimension "d62" = 1
  dimension "d63" = 5.5
extrude "Extrusion12" cut sketch "Sketch14" against normal blind 0.5
sketch "Sketch15" plane through (3, 8.2141, -27.7559) normal (0, -1, 0) x (1, 0, 0)
  line L0 (17.5, 13.5) -> (16.5, 13.5)
  line L1 (16.5, 13.5) -> (16.5, 8.5)
  line L2 (16.5, 8.5) -> (17.5, 8.5)
  line L3 (17.5, 8.5) -> (17.5, 13.5)
  line L4 (18.5, 22.51) -> (18.5, 0) projected
  line L5 (0, 0) -> (18.5, 0) projected
  point P0 (-3, 27.7559)
  point P1 (17.5, 11)
  dimension "d66" = 1
  dimension "d67" = 5
  dimension "d68" = 1
  dimension "d69" = 11
extrude "Extrusion13" cut sketch "Sketch15" against normal blind 0.5
sketch "Sketch16" plane through (3, -29.3859, 15.5541) normal (0, 1, 0) x (1, 0, 0)
  line L0 (17.5, 8) -> (16.5, 8)
  line L1 (16.5, 8) -> (16.5, 3)
  line L2 (16.5, 3) -> (17.5, 3)
  line L3 (17.5, 3) -> (17.5, 8)
  line L4 (18.5, 43.31) -> (18.5, 0) projected
  line L5 (0, 0) -> (18.5, 0) projected
  point P0 (-3, 15.5541)
  point P1 (17.5, 5.5)
  dimension "d72" = 1
  dimension "d73" = 5
  dimension "d74" = 1
  dimension "d75" = 5.5
extrude "Extrusion14" cut sketch "Sketch16" against normal blind 0.5
sketch "Sketch17" plane through (3, -29.3859, 15.5541) normal (0, 1, 0) x (1, 0, 0)
  line L0 (17.5, 34.81) -> (16.5, 34.81)
  line L1 (16.5, 34.81) -> (16.5, 29.81)
  line L2 (16.5, 29.81) -> (17.5, 29.81)
  line L3 (17.5, 29.81) -> (17.5, 34.81)
  line L4 (18.5, 43.31) -> (18.5, 0) projected
  line L5 (0, 43.31) -> (18.5, 43.31) projected
  point P0 (-3, 15.5541)
  point P1 (17.5, 32.31)
  dimension "d78" = 1
  dimension "d79" = 5
  dimension "d80" = 1
  dimension "d81" = 11
extrude "Extrusion15" cut sketch "Sketch17" against normal blind 0.5
equation "\"BendRadius\" = Thickness"
equation "\"BendReliefWidth\" = Thickness"
equation "\"BendReliefDepth\" = 0.5 * Thickness"
equation "\"CornerReliefSize\" = 4 * Thickness"
equation "\"MinimumRemnant\" = 2 * Thickness"
equation "\"TransitionRadius\" = BendRadius"
equation "\"JacobiRadiusSize\" = BendRadius"
equation "\"GapSize\" = Thickness"
equation "\"Thickness\" = 0.5"
properties part number "Enclosure_Top_v2"
